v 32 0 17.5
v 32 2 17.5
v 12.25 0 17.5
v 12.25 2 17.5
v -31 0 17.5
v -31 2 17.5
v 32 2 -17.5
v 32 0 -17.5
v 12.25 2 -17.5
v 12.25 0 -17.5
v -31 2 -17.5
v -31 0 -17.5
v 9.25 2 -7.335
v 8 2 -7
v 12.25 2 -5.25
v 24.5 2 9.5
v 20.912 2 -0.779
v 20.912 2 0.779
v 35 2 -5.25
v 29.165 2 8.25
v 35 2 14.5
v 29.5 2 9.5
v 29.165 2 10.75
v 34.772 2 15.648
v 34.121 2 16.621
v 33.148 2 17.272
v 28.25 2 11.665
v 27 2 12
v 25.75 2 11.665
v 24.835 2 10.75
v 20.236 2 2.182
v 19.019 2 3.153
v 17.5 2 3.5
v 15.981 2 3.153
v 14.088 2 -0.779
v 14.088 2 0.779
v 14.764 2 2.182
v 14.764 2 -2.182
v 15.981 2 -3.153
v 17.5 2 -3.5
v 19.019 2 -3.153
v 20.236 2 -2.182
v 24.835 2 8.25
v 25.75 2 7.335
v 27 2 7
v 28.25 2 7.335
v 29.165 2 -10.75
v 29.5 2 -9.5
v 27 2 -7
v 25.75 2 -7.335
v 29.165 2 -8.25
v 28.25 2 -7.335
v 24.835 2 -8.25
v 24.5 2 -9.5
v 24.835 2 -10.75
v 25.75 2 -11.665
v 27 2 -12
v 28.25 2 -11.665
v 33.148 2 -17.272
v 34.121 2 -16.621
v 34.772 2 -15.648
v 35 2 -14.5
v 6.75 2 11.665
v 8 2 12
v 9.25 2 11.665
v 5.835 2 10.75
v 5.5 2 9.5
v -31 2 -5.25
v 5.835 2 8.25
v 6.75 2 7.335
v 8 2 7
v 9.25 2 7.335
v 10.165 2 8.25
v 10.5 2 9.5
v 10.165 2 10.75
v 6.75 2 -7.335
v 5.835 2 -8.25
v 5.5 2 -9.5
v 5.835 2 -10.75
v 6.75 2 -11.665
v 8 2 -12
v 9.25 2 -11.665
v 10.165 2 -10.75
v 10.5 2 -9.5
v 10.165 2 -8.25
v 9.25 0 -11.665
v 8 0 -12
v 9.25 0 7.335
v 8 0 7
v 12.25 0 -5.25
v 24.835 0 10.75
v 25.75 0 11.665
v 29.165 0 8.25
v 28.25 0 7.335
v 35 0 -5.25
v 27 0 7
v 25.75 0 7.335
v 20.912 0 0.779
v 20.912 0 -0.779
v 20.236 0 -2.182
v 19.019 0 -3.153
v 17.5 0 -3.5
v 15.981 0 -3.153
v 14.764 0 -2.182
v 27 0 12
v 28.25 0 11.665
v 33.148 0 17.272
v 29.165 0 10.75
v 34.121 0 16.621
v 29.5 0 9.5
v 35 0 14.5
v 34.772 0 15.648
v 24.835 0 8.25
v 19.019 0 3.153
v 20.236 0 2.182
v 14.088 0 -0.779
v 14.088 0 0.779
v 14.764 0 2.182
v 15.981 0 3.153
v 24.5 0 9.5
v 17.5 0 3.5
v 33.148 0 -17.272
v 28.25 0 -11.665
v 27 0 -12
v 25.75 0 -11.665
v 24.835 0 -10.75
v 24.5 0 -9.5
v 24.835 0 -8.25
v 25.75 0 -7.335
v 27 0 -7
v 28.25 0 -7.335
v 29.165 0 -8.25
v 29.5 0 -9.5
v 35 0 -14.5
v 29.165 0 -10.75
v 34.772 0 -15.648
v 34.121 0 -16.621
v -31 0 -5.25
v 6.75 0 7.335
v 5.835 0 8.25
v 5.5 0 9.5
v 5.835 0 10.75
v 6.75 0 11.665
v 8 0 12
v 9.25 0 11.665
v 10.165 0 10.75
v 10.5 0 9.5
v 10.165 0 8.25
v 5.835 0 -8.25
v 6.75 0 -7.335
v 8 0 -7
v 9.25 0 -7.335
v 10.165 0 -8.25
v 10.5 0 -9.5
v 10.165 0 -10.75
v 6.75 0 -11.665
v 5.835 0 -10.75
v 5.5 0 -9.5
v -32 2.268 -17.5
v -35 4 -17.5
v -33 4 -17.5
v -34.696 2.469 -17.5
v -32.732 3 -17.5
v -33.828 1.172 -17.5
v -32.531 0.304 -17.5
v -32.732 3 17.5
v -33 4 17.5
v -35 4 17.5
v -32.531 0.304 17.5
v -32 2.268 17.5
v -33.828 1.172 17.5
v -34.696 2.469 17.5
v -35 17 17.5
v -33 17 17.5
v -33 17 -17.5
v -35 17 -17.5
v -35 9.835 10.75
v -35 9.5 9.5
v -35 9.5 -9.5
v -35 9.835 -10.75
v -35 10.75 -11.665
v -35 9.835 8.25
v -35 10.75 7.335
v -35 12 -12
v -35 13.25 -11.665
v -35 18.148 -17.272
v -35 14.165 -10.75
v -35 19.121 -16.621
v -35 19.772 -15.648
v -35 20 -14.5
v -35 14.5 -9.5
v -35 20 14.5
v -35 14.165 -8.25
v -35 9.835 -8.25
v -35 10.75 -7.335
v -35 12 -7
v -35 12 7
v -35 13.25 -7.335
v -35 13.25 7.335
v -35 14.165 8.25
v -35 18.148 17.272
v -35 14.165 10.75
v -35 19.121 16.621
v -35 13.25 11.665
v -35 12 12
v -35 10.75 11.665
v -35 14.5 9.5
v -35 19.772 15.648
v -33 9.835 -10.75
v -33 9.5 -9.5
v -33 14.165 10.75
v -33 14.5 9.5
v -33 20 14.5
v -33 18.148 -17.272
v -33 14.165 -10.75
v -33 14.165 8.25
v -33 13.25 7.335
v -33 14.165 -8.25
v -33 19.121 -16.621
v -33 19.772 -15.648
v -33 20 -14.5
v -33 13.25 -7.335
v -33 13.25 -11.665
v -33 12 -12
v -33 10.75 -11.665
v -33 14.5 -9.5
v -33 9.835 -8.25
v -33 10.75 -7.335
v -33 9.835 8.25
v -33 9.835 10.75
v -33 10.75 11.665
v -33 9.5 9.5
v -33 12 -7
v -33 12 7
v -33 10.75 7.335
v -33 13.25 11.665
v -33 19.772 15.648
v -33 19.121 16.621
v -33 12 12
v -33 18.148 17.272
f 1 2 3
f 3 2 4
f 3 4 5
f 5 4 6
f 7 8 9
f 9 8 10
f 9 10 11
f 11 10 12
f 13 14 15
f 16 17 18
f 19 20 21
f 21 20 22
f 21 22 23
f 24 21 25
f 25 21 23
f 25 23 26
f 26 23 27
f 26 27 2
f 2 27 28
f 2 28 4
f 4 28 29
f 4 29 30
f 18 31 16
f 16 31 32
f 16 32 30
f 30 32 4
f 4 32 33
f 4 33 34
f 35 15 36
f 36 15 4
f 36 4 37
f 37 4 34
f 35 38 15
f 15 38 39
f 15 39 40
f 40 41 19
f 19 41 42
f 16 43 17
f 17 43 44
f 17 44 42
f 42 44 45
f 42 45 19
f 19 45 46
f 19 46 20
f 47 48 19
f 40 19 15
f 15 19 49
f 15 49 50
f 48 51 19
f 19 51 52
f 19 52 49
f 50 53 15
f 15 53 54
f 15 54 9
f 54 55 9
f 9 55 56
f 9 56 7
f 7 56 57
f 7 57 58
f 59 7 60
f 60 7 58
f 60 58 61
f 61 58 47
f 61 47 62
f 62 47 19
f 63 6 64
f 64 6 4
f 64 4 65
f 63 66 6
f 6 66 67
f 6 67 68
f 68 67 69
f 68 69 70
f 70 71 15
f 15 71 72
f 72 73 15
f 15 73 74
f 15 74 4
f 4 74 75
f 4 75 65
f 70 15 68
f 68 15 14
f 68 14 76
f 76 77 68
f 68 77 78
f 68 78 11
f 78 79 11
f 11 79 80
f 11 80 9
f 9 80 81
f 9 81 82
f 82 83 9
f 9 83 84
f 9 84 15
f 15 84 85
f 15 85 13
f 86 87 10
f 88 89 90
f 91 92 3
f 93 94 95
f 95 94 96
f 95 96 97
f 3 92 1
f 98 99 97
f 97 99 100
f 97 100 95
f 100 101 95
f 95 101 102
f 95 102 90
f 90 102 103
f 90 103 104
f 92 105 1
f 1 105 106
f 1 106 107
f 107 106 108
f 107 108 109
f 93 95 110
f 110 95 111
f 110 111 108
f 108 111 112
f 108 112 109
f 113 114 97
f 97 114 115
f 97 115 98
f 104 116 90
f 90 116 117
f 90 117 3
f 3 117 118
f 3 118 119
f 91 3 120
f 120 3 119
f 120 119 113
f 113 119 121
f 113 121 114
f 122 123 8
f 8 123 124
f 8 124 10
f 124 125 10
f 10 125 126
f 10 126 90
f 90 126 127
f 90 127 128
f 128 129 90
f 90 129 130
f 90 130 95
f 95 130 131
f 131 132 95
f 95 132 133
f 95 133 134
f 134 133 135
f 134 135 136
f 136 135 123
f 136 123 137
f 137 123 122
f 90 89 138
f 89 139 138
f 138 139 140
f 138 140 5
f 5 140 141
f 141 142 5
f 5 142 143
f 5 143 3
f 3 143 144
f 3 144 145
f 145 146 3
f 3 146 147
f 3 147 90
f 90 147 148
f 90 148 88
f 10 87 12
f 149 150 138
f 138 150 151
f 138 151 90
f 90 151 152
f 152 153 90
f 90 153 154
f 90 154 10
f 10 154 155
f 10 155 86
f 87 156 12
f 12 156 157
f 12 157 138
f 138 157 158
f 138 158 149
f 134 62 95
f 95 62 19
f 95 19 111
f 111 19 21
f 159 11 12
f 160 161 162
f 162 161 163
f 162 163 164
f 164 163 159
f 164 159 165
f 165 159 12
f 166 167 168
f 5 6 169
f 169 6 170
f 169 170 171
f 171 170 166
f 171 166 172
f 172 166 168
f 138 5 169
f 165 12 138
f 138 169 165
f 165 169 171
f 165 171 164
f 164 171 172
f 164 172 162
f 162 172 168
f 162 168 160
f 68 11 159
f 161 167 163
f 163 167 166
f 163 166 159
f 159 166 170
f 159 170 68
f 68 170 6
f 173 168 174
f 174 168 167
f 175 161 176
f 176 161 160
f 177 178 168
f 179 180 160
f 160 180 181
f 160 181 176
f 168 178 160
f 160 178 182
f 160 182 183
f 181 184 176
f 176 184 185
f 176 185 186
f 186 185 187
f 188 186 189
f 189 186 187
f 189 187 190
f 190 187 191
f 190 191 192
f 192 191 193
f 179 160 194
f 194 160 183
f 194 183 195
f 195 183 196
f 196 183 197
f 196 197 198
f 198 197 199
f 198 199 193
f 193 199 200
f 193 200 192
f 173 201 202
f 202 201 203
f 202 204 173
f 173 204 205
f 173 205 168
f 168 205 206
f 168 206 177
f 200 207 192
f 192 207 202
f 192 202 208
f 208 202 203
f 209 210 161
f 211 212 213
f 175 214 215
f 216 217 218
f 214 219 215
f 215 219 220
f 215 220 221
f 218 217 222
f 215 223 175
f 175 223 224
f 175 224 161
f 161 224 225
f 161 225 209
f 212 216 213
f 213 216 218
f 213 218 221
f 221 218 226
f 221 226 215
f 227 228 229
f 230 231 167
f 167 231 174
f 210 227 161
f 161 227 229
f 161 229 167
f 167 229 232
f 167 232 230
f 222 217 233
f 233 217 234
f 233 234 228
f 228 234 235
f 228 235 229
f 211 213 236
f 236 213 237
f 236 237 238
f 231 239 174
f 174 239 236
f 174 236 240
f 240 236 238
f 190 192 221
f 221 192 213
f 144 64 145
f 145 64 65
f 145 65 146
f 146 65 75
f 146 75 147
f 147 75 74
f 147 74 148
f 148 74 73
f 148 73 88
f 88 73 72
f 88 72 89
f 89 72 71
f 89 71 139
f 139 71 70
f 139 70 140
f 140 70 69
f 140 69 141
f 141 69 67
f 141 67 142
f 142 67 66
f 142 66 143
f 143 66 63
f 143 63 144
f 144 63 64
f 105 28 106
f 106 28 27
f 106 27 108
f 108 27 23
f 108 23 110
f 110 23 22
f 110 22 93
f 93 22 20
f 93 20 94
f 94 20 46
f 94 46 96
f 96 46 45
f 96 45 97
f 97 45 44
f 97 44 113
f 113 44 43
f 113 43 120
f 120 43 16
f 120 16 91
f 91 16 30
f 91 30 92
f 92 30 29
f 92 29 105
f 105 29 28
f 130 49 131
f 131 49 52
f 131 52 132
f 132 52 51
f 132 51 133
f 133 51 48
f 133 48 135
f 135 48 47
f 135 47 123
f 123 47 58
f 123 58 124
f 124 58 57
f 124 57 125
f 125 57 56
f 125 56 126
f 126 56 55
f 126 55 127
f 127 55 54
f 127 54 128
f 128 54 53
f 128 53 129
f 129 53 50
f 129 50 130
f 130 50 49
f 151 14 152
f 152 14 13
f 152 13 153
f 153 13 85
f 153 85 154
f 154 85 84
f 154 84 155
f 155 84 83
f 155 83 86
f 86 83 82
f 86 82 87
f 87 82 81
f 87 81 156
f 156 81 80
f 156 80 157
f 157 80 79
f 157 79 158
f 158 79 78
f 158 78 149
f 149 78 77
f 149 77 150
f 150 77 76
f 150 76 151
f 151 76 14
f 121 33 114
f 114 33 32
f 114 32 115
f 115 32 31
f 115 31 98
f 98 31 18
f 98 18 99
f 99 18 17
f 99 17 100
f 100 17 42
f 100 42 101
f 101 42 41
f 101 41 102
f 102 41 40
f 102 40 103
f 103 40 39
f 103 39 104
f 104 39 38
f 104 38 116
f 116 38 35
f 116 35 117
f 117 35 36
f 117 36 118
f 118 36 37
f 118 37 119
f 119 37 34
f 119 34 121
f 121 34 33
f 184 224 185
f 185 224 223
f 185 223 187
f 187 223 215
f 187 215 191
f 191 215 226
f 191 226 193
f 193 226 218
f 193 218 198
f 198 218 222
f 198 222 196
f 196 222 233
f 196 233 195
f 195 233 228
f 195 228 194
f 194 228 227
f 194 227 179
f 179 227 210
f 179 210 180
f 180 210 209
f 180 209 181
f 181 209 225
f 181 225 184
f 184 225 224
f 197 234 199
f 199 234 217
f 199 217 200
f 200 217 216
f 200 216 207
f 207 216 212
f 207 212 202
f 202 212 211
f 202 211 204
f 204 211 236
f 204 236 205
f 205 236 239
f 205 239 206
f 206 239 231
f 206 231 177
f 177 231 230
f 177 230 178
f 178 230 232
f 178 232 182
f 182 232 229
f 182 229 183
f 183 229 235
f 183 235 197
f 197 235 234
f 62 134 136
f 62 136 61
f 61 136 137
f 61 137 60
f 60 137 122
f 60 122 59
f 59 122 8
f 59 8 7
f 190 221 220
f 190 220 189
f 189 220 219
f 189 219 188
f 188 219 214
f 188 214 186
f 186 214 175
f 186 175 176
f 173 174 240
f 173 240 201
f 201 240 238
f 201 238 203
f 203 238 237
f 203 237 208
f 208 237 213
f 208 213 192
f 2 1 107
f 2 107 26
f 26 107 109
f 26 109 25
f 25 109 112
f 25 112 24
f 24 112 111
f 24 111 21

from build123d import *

# Parameters (mm, degrees)
SKETCH1_W                    = 70
SKETCH1_H                    = 35
BASE_FLANGE1_DEPTH           = 2
EDGE_FLANGE1_STRIP_W         = 12
EDGE_FLANGE1_STRIP_H         = 2
EDGE_FLANGE1_STRIP_CUT_DEPTH = 35
EDGE_FLANGE1_DEPTH           = 35
F_5_0MM_DOWEL_HOLE1_D        = 5
F_5_0MM_DOWEL_HOLE2_D        = 7
F_5_0MM_DOWEL_HOLE3_D        = 5
FILLET1_R                    = 3


# Sheet-metal steps are written as plain solids
with BuildPart() as part:
    # Sketch1 → Base-Flange1 (new body)
    with BuildSketch(Plane(origin=(0, 0, 0), x_dir=(1, 0, 0), z_dir=(0, 1, 0))):
        Rectangle(SKETCH1_W, SKETCH1_H)
    extrude(amount=BASE_FLANGE1_DEPTH)

    # Edge-Flange1 strip (across the edge) → Edge-Flange1 strip cut (cut)
    with BuildSketch(Plane(origin=(-35, 2, -17.5), x_dir=(1, 0, 0), z_dir=(0, 0, 1))):
        with Locations((-2, -1)):
            Rectangle(EDGE_FLANGE1_STRIP_W, EDGE_FLANGE1_STRIP_H)
    extrude(amount=EDGE_FLANGE1_STRIP_CUT_DEPTH, mode=Mode.SUBTRACT)

    # Edge-Flange1 section (across the edge) → Edge-Flange1 (add)
    with BuildSketch(Plane(origin=(-35, 2, -17.5), x_dir=(1, 0, 0), z_dir=(0, 0, 1))):
        with BuildLine():
            Line((0, 2), (0, 18))
            Line((0, 18), (2, 18))
            Line((2, 18), (2, 2))
            ThreePointArc((2, 2), (2.585786438, 0.585786438), (4, 0))
            Line((4, 0), (4, -2))
            ThreePointArc((4, -2), (1.171572875, -0.828427125), (0, 2))
        make_face()
    extrude(amount=EDGE_FLANGE1_DEPTH)

    # Ø5.0mm Dowel Hole1 (through all)
    with Locations(Plane(origin=(0, 2, 0), x_dir=(1, 0, 0), z_dir=(0, 1, 0))):
        with Locations((8, 9.5), (27, 9.5), (27, -9.5), (8, -9.5)):
            Hole(F_5_0MM_DOWEL_HOLE1_D / 2)

    # Ø5.0mm Dowel Hole2 (through all)
    with Locations(Plane(origin=(0, 2, 0), x_dir=(1, 0, 0), z_dir=(0, 1, 0))):
        with Locations((17.5, 0)):
            Hole(F_5_0MM_DOWEL_HOLE2_D / 2)

    # Ø5.0mm Dowel Hole3 (through all)
    with Locations(Plane(origin=(-33, 0, 0), x_dir=(0, 0, -1), z_dir=(1, 0, 0))):
        with Locations((-9.5, 12), (9.5, 12)):
            Hole(F_5_0MM_DOWEL_HOLE3_D / 2)

    # Fillet1
    fillet1_edges = [part.edges().sort_by_distance(p)[0] for p in [
        (-34, 20, -17.5),
        (-34, 20, 17.5),
        (35, 1, -17.5),
        (35, 1, 17.5),
    ]]
    fillet(fillet1_edges, radius=FILLET1_R)


solid = part.part
